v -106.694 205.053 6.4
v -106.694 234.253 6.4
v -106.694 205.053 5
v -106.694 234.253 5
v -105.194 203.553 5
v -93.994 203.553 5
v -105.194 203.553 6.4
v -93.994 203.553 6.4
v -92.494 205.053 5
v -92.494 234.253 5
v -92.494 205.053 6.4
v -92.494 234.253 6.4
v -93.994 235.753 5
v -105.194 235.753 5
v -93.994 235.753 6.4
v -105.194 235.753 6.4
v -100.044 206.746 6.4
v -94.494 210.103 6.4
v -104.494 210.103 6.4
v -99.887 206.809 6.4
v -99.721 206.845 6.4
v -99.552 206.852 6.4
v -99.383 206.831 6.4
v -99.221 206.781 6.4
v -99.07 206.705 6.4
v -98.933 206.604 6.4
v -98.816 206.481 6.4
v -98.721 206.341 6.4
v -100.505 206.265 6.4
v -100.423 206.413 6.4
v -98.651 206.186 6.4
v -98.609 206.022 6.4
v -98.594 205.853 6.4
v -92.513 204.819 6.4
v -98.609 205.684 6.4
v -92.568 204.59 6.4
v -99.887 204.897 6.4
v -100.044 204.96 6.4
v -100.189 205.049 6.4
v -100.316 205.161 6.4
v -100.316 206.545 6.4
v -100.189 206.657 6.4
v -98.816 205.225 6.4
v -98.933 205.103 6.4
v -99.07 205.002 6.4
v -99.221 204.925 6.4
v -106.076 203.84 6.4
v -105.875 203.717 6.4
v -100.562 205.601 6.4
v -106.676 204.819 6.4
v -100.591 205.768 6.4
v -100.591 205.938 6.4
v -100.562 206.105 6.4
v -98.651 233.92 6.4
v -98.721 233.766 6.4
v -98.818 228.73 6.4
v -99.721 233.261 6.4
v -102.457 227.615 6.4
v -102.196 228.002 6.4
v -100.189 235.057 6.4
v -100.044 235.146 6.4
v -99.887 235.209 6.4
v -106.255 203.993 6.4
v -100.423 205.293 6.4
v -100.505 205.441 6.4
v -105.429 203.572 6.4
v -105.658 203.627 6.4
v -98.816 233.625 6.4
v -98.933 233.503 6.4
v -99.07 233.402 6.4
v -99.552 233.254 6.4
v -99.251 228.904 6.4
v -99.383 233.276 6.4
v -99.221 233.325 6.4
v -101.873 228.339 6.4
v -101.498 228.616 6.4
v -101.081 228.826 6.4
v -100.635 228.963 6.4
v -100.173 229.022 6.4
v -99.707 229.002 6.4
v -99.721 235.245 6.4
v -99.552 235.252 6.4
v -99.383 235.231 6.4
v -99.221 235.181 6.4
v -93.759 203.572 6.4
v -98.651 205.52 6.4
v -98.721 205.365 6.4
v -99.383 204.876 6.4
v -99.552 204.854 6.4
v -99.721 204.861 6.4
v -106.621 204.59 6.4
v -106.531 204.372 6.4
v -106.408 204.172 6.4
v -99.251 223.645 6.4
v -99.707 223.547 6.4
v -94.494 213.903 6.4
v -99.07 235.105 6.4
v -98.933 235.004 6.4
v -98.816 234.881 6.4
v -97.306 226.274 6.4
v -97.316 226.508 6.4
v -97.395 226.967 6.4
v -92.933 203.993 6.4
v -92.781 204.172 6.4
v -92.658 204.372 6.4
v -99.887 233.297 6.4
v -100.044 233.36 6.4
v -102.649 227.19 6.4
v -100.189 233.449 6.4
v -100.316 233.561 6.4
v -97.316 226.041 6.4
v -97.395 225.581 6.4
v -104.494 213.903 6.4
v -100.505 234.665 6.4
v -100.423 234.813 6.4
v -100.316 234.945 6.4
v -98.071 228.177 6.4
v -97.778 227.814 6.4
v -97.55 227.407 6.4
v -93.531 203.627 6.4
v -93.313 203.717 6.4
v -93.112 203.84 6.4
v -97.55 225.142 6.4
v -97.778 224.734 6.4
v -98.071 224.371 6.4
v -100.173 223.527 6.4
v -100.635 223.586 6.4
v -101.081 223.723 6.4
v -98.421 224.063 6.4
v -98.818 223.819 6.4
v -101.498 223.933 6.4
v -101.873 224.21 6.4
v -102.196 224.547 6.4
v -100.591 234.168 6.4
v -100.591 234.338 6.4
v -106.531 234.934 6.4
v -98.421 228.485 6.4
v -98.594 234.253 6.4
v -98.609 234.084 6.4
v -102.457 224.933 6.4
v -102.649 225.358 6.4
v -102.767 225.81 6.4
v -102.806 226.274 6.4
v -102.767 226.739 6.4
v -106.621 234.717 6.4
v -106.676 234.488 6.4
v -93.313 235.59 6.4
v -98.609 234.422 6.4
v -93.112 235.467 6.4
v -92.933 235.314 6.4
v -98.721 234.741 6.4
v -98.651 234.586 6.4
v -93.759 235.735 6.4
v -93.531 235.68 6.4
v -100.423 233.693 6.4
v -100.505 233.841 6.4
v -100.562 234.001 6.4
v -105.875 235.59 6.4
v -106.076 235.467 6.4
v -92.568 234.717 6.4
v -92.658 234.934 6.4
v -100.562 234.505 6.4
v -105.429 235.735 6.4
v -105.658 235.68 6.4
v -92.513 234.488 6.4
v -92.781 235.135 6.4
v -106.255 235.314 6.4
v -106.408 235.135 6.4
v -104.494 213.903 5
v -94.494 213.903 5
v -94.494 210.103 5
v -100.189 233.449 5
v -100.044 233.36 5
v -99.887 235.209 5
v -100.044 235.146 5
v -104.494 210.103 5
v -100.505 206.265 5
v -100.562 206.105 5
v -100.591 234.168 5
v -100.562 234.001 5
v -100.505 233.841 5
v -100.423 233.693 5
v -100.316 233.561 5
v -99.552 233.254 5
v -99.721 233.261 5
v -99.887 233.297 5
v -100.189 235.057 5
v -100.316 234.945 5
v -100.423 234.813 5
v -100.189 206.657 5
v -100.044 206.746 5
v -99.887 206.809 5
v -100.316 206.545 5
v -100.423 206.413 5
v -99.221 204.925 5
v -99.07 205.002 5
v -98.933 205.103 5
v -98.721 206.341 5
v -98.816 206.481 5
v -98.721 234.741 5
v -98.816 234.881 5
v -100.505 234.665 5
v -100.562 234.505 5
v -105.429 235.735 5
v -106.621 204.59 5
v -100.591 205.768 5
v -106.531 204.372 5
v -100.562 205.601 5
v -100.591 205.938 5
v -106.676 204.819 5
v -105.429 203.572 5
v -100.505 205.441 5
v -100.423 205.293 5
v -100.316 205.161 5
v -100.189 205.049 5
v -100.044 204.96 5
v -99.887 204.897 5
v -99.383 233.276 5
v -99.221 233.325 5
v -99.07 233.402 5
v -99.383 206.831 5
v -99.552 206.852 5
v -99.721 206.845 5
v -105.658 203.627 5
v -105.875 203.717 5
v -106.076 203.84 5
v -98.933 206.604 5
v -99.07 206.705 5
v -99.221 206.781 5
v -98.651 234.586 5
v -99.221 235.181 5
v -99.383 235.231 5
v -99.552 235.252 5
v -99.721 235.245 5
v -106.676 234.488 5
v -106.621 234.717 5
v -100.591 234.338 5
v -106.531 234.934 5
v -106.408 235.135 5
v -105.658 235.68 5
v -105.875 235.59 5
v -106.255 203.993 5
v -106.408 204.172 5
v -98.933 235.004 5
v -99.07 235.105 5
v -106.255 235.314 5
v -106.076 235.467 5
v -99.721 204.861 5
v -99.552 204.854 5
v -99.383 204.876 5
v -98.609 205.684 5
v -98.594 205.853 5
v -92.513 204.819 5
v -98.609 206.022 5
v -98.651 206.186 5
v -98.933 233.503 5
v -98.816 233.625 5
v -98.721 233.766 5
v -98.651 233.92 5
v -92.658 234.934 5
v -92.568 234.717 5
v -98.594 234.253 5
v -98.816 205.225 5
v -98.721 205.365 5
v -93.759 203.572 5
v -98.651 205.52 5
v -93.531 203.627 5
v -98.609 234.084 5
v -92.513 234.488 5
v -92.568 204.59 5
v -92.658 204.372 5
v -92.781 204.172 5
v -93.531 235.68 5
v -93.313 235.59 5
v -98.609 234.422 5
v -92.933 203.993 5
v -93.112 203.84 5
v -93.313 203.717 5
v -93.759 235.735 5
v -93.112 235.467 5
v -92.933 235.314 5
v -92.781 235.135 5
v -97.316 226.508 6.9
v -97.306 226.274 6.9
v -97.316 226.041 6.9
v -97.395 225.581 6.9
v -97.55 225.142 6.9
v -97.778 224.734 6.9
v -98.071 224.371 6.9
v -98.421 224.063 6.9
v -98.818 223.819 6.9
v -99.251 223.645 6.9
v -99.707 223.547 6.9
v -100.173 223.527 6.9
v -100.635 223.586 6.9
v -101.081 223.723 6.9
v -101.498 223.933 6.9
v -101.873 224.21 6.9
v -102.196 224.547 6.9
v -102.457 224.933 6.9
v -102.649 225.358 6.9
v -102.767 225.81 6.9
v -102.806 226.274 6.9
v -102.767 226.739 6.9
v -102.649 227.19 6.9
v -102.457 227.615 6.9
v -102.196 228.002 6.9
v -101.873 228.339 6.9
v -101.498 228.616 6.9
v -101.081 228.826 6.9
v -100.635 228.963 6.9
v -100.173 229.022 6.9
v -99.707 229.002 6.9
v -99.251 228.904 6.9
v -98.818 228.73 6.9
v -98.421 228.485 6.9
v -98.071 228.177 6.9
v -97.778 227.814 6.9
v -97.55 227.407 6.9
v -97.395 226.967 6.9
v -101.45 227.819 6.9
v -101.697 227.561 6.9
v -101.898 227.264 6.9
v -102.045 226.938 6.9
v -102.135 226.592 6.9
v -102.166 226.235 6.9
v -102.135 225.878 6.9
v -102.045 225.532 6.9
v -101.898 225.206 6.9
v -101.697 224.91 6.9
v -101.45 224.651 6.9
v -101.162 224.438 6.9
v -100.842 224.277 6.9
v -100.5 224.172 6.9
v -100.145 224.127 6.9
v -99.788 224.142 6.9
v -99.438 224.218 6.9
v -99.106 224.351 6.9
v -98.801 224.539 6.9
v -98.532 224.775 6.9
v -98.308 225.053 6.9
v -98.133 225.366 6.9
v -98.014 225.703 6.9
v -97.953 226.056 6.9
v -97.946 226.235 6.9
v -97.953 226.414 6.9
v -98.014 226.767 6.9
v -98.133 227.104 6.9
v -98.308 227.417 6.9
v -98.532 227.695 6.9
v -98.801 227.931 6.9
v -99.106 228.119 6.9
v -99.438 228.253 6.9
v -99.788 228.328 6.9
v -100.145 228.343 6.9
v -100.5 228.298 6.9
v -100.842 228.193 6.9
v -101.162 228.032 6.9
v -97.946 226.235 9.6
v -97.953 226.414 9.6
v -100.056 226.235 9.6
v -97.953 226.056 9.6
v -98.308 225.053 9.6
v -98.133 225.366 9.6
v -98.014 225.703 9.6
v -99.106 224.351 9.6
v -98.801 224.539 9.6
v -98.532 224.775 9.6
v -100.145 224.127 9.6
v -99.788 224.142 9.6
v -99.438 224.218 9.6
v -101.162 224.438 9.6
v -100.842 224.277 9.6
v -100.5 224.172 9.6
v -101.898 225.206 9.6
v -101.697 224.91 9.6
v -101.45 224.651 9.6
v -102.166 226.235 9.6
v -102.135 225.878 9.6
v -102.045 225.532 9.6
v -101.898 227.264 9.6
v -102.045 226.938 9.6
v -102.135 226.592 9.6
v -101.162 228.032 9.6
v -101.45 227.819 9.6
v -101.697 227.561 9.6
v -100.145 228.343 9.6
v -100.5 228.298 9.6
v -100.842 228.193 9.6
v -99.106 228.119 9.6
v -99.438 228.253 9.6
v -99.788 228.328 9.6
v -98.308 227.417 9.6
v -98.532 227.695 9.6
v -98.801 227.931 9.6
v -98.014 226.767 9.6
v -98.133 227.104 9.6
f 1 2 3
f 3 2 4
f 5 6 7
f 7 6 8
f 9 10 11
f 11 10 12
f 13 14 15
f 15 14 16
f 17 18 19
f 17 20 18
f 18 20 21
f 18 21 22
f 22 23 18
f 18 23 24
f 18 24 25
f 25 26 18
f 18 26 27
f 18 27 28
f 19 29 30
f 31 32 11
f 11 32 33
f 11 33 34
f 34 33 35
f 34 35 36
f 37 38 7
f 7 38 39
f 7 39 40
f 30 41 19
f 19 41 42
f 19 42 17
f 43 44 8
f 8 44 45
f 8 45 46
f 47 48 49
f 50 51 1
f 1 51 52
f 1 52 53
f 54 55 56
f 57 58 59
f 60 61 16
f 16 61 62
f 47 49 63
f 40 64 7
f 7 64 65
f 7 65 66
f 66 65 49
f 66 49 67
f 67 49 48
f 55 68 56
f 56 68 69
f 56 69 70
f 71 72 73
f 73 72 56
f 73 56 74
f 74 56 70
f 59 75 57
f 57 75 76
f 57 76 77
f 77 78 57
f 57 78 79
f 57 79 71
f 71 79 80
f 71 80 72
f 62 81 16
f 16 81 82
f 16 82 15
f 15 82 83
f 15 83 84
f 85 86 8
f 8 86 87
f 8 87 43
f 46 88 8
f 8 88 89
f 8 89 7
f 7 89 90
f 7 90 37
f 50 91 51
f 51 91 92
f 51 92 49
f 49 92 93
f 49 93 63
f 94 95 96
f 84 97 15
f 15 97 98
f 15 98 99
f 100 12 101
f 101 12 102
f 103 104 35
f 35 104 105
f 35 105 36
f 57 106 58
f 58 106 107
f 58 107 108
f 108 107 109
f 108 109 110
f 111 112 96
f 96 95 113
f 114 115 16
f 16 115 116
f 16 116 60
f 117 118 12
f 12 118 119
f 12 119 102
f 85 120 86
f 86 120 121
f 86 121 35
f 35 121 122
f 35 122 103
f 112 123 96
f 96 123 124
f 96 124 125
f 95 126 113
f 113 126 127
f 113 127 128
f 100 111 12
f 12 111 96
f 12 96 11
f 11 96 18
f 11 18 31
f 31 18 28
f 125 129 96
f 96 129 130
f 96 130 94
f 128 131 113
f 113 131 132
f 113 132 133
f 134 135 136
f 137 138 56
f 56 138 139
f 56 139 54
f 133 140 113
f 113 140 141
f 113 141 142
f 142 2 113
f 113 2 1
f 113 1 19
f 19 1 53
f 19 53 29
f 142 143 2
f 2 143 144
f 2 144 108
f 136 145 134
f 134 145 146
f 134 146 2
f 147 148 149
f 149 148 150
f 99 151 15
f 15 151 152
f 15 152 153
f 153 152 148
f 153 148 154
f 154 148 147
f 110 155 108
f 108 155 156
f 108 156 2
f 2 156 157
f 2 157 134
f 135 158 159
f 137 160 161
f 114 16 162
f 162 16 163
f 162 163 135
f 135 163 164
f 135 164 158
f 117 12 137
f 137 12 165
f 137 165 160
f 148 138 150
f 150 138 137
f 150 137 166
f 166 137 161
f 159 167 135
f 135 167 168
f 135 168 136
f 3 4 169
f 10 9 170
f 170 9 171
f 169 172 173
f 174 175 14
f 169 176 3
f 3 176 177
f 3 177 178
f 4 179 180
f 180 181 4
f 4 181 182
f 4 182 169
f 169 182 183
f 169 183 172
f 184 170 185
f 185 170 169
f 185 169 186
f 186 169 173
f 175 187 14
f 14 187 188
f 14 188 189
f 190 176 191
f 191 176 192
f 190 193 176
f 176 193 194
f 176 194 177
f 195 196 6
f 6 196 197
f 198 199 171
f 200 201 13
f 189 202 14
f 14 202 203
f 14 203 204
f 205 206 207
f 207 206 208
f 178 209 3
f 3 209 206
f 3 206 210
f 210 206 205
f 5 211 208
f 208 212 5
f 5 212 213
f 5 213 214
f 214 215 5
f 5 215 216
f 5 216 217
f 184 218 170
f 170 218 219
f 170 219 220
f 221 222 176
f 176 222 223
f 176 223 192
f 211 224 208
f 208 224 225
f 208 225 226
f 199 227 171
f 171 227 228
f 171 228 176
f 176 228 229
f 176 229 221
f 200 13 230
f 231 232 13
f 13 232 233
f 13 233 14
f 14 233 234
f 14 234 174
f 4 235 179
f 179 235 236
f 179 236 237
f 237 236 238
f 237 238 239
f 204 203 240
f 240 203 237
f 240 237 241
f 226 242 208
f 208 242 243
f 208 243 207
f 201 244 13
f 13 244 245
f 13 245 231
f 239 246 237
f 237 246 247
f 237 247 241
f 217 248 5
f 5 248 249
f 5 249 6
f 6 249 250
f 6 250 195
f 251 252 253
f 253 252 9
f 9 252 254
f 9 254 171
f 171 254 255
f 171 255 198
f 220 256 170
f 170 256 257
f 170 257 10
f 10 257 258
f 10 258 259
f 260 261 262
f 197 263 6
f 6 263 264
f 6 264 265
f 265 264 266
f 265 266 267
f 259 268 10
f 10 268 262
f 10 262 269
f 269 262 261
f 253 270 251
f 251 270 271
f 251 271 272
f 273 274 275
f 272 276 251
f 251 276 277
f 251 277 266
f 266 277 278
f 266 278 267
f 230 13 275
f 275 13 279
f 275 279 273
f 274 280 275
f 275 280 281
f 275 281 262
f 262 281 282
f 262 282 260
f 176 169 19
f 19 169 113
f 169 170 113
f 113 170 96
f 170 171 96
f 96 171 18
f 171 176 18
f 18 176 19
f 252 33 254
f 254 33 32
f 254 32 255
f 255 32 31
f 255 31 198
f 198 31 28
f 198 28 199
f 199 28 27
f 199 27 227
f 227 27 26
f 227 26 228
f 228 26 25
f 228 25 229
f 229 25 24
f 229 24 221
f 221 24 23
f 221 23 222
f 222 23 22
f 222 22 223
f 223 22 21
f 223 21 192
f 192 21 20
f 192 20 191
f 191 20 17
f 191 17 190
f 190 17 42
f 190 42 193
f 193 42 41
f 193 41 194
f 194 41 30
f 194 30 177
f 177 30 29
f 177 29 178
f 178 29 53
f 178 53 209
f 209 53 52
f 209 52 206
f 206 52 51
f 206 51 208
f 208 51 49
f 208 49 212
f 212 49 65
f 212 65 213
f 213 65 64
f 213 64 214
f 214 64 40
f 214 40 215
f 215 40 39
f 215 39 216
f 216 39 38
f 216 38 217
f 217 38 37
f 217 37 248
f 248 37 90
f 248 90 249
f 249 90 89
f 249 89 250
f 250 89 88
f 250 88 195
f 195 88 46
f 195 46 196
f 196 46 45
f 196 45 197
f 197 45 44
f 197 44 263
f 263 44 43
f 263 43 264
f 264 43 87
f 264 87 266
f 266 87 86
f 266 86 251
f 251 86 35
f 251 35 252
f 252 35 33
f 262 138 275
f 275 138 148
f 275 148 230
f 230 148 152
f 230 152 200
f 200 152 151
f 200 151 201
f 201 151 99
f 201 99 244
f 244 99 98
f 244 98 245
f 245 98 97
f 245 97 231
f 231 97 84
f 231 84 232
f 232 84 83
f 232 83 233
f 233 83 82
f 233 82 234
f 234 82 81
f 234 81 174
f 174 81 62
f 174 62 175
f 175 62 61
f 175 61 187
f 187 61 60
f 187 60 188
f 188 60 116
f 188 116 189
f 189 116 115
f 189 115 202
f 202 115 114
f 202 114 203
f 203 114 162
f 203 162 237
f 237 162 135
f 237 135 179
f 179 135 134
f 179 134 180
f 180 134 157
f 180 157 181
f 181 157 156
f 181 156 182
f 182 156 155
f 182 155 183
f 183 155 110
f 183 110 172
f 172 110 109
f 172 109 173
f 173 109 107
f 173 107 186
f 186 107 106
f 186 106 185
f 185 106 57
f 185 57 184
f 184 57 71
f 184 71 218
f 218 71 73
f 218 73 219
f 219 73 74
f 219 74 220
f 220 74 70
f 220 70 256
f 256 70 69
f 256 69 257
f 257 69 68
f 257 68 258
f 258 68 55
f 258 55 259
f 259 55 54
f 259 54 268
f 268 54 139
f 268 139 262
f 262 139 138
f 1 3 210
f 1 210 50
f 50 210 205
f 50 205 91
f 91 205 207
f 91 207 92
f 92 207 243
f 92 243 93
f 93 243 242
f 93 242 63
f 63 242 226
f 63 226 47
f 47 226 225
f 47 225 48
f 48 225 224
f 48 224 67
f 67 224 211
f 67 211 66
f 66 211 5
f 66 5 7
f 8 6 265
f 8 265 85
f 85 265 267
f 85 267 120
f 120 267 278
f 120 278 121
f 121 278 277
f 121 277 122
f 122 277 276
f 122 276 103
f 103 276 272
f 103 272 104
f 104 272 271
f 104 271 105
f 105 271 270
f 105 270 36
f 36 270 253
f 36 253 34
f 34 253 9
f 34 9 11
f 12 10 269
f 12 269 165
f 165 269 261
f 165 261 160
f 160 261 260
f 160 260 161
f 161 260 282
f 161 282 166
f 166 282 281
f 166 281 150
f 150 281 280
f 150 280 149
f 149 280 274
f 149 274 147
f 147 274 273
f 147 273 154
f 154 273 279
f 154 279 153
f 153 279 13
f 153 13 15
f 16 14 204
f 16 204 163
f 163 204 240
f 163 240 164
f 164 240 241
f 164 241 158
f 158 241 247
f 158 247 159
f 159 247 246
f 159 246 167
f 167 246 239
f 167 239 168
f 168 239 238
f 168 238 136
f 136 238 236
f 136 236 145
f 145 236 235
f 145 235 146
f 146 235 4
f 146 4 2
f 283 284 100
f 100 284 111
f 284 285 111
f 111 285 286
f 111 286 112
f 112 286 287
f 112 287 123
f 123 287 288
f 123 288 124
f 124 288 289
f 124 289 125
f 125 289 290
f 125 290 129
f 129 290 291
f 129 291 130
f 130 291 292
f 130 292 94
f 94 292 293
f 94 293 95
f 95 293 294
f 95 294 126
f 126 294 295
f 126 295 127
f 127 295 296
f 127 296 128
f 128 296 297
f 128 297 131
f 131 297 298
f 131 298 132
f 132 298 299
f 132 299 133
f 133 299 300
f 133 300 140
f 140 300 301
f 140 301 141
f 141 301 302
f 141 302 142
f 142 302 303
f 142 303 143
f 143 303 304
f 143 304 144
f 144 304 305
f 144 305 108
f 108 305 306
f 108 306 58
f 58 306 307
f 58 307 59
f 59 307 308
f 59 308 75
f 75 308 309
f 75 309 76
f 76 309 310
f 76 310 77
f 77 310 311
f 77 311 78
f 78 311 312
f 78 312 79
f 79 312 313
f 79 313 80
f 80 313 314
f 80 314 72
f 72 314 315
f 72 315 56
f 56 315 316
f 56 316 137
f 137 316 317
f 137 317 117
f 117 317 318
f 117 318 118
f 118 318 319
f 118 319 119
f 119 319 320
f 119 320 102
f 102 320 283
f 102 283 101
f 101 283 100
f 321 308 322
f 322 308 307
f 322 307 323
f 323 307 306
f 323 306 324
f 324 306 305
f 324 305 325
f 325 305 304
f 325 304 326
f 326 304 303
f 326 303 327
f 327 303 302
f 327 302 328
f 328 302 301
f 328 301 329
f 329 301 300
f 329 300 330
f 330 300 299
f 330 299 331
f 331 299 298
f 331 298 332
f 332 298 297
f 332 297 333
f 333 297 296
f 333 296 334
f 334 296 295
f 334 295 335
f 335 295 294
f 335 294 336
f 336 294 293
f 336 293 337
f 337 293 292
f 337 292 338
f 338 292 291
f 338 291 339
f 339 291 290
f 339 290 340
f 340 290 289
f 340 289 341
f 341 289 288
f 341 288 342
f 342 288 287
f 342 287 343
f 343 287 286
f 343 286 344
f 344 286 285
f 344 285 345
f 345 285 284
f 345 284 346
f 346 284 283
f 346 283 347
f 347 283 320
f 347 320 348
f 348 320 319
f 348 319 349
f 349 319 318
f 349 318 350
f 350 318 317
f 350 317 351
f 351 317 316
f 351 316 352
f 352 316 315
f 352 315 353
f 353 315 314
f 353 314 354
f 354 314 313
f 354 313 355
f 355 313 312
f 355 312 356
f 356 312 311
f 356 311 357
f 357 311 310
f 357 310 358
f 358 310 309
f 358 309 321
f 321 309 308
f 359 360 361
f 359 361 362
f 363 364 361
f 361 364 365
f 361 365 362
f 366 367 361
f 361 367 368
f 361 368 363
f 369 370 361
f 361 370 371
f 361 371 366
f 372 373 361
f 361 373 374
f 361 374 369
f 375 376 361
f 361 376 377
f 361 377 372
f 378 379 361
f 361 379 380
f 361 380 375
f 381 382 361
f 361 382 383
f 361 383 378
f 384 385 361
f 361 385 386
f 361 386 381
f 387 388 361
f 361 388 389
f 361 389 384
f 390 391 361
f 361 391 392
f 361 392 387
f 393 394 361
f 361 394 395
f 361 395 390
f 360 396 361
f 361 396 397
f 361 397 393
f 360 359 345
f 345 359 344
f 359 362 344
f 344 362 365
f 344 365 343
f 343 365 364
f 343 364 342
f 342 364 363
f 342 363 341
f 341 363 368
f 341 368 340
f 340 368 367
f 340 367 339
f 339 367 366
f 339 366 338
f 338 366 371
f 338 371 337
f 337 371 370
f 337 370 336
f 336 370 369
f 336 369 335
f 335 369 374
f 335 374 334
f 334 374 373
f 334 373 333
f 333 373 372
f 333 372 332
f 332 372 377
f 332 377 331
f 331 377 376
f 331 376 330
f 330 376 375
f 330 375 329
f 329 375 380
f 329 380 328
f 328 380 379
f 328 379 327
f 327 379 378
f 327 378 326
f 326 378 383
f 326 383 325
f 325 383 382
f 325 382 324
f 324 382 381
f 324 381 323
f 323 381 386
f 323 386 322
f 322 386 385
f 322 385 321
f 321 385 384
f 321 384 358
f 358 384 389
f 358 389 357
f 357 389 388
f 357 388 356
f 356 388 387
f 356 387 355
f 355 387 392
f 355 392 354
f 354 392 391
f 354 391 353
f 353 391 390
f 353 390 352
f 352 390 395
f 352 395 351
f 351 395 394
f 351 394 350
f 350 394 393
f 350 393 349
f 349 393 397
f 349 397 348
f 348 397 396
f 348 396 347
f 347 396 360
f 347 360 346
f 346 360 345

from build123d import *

# Parameters (mm, degrees)
SKETCH1_W           = 14.2
SKETCH1_H           = 32.2
BOSS_EXTRUDE1_DEPTH = 1.4
SKETCH2_R           = 1
SKETCH2_W           = 10
SKETCH2_H           = 3.8
CUT_EXTRUDE1_DEPTH  = 1.4
SKETCH3_R           = 2.11
BOSS_EXTRUDE2_DEPTH = 3.2
FILLET1_R           = 1.5
SKETCH5_R           = 2.75
BOSS_EXTRUDE3_DEPTH = 0.5


with BuildPart() as part:
    # Sketch1 → Boss-Extrude1 (new body)
    with BuildSketch(Plane.XY.offset(5)):
        with Locations((-99.59415338, 219.653192448)):
            Rectangle(SKETCH1_W, SKETCH1_H)
    extrude(amount=BOSS_EXTRUDE1_DEPTH)

    # Sketch2 → Cut-Extrude1 (cut)
    with BuildSketch(Plane.XY.offset(6.4)):
        with Locations((-99.59415338, 234.253192448)):
            Circle(SKETCH2_R)
        with Locations((-99.59415338, 205.853192448)):
            Circle(SKETCH2_R)
        with Locations((-99.49415338, 212.003192448)):
            Rectangle(SKETCH2_W, SKETCH2_H)
    extrude(amount=-CUT_EXTRUDE1_DEPTH, mode=Mode.SUBTRACT)

    # Sketch3 → Boss-Extrude2 (add)
    with BuildSketch(Plane.XY.offset(6.4)):
        with Locations((-100.055672153, 226.235056066)):
            Circle(SKETCH3_R)
    extrude(amount=BOSS_EXTRUDE2_DEPTH)

    # Fillet1
    fillet1_edges = [part.edges().sort_by_distance(p)[0] for p in [
        (-106.69415338, 235.753192448, 5.7),
        (-92.49415338, 235.753192448, 5.7),
        (-92.49415338, 203.553192448, 5.7),
        (-106.69415338, 203.553192448, 5.7),
    ]]
    fillet(fillet1_edges, radius=FILLET1_R)

    # Sketch5 → Boss-Extrude3 (add)
    with BuildSketch(Plane.XY.offset(6.4)):
        with Locations((-100.056084646, 226.274312916)):
            Circle(SKETCH5_R)
    extrude(amount=BOSS_EXTRUDE3_DEPTH)


solid = part.part
